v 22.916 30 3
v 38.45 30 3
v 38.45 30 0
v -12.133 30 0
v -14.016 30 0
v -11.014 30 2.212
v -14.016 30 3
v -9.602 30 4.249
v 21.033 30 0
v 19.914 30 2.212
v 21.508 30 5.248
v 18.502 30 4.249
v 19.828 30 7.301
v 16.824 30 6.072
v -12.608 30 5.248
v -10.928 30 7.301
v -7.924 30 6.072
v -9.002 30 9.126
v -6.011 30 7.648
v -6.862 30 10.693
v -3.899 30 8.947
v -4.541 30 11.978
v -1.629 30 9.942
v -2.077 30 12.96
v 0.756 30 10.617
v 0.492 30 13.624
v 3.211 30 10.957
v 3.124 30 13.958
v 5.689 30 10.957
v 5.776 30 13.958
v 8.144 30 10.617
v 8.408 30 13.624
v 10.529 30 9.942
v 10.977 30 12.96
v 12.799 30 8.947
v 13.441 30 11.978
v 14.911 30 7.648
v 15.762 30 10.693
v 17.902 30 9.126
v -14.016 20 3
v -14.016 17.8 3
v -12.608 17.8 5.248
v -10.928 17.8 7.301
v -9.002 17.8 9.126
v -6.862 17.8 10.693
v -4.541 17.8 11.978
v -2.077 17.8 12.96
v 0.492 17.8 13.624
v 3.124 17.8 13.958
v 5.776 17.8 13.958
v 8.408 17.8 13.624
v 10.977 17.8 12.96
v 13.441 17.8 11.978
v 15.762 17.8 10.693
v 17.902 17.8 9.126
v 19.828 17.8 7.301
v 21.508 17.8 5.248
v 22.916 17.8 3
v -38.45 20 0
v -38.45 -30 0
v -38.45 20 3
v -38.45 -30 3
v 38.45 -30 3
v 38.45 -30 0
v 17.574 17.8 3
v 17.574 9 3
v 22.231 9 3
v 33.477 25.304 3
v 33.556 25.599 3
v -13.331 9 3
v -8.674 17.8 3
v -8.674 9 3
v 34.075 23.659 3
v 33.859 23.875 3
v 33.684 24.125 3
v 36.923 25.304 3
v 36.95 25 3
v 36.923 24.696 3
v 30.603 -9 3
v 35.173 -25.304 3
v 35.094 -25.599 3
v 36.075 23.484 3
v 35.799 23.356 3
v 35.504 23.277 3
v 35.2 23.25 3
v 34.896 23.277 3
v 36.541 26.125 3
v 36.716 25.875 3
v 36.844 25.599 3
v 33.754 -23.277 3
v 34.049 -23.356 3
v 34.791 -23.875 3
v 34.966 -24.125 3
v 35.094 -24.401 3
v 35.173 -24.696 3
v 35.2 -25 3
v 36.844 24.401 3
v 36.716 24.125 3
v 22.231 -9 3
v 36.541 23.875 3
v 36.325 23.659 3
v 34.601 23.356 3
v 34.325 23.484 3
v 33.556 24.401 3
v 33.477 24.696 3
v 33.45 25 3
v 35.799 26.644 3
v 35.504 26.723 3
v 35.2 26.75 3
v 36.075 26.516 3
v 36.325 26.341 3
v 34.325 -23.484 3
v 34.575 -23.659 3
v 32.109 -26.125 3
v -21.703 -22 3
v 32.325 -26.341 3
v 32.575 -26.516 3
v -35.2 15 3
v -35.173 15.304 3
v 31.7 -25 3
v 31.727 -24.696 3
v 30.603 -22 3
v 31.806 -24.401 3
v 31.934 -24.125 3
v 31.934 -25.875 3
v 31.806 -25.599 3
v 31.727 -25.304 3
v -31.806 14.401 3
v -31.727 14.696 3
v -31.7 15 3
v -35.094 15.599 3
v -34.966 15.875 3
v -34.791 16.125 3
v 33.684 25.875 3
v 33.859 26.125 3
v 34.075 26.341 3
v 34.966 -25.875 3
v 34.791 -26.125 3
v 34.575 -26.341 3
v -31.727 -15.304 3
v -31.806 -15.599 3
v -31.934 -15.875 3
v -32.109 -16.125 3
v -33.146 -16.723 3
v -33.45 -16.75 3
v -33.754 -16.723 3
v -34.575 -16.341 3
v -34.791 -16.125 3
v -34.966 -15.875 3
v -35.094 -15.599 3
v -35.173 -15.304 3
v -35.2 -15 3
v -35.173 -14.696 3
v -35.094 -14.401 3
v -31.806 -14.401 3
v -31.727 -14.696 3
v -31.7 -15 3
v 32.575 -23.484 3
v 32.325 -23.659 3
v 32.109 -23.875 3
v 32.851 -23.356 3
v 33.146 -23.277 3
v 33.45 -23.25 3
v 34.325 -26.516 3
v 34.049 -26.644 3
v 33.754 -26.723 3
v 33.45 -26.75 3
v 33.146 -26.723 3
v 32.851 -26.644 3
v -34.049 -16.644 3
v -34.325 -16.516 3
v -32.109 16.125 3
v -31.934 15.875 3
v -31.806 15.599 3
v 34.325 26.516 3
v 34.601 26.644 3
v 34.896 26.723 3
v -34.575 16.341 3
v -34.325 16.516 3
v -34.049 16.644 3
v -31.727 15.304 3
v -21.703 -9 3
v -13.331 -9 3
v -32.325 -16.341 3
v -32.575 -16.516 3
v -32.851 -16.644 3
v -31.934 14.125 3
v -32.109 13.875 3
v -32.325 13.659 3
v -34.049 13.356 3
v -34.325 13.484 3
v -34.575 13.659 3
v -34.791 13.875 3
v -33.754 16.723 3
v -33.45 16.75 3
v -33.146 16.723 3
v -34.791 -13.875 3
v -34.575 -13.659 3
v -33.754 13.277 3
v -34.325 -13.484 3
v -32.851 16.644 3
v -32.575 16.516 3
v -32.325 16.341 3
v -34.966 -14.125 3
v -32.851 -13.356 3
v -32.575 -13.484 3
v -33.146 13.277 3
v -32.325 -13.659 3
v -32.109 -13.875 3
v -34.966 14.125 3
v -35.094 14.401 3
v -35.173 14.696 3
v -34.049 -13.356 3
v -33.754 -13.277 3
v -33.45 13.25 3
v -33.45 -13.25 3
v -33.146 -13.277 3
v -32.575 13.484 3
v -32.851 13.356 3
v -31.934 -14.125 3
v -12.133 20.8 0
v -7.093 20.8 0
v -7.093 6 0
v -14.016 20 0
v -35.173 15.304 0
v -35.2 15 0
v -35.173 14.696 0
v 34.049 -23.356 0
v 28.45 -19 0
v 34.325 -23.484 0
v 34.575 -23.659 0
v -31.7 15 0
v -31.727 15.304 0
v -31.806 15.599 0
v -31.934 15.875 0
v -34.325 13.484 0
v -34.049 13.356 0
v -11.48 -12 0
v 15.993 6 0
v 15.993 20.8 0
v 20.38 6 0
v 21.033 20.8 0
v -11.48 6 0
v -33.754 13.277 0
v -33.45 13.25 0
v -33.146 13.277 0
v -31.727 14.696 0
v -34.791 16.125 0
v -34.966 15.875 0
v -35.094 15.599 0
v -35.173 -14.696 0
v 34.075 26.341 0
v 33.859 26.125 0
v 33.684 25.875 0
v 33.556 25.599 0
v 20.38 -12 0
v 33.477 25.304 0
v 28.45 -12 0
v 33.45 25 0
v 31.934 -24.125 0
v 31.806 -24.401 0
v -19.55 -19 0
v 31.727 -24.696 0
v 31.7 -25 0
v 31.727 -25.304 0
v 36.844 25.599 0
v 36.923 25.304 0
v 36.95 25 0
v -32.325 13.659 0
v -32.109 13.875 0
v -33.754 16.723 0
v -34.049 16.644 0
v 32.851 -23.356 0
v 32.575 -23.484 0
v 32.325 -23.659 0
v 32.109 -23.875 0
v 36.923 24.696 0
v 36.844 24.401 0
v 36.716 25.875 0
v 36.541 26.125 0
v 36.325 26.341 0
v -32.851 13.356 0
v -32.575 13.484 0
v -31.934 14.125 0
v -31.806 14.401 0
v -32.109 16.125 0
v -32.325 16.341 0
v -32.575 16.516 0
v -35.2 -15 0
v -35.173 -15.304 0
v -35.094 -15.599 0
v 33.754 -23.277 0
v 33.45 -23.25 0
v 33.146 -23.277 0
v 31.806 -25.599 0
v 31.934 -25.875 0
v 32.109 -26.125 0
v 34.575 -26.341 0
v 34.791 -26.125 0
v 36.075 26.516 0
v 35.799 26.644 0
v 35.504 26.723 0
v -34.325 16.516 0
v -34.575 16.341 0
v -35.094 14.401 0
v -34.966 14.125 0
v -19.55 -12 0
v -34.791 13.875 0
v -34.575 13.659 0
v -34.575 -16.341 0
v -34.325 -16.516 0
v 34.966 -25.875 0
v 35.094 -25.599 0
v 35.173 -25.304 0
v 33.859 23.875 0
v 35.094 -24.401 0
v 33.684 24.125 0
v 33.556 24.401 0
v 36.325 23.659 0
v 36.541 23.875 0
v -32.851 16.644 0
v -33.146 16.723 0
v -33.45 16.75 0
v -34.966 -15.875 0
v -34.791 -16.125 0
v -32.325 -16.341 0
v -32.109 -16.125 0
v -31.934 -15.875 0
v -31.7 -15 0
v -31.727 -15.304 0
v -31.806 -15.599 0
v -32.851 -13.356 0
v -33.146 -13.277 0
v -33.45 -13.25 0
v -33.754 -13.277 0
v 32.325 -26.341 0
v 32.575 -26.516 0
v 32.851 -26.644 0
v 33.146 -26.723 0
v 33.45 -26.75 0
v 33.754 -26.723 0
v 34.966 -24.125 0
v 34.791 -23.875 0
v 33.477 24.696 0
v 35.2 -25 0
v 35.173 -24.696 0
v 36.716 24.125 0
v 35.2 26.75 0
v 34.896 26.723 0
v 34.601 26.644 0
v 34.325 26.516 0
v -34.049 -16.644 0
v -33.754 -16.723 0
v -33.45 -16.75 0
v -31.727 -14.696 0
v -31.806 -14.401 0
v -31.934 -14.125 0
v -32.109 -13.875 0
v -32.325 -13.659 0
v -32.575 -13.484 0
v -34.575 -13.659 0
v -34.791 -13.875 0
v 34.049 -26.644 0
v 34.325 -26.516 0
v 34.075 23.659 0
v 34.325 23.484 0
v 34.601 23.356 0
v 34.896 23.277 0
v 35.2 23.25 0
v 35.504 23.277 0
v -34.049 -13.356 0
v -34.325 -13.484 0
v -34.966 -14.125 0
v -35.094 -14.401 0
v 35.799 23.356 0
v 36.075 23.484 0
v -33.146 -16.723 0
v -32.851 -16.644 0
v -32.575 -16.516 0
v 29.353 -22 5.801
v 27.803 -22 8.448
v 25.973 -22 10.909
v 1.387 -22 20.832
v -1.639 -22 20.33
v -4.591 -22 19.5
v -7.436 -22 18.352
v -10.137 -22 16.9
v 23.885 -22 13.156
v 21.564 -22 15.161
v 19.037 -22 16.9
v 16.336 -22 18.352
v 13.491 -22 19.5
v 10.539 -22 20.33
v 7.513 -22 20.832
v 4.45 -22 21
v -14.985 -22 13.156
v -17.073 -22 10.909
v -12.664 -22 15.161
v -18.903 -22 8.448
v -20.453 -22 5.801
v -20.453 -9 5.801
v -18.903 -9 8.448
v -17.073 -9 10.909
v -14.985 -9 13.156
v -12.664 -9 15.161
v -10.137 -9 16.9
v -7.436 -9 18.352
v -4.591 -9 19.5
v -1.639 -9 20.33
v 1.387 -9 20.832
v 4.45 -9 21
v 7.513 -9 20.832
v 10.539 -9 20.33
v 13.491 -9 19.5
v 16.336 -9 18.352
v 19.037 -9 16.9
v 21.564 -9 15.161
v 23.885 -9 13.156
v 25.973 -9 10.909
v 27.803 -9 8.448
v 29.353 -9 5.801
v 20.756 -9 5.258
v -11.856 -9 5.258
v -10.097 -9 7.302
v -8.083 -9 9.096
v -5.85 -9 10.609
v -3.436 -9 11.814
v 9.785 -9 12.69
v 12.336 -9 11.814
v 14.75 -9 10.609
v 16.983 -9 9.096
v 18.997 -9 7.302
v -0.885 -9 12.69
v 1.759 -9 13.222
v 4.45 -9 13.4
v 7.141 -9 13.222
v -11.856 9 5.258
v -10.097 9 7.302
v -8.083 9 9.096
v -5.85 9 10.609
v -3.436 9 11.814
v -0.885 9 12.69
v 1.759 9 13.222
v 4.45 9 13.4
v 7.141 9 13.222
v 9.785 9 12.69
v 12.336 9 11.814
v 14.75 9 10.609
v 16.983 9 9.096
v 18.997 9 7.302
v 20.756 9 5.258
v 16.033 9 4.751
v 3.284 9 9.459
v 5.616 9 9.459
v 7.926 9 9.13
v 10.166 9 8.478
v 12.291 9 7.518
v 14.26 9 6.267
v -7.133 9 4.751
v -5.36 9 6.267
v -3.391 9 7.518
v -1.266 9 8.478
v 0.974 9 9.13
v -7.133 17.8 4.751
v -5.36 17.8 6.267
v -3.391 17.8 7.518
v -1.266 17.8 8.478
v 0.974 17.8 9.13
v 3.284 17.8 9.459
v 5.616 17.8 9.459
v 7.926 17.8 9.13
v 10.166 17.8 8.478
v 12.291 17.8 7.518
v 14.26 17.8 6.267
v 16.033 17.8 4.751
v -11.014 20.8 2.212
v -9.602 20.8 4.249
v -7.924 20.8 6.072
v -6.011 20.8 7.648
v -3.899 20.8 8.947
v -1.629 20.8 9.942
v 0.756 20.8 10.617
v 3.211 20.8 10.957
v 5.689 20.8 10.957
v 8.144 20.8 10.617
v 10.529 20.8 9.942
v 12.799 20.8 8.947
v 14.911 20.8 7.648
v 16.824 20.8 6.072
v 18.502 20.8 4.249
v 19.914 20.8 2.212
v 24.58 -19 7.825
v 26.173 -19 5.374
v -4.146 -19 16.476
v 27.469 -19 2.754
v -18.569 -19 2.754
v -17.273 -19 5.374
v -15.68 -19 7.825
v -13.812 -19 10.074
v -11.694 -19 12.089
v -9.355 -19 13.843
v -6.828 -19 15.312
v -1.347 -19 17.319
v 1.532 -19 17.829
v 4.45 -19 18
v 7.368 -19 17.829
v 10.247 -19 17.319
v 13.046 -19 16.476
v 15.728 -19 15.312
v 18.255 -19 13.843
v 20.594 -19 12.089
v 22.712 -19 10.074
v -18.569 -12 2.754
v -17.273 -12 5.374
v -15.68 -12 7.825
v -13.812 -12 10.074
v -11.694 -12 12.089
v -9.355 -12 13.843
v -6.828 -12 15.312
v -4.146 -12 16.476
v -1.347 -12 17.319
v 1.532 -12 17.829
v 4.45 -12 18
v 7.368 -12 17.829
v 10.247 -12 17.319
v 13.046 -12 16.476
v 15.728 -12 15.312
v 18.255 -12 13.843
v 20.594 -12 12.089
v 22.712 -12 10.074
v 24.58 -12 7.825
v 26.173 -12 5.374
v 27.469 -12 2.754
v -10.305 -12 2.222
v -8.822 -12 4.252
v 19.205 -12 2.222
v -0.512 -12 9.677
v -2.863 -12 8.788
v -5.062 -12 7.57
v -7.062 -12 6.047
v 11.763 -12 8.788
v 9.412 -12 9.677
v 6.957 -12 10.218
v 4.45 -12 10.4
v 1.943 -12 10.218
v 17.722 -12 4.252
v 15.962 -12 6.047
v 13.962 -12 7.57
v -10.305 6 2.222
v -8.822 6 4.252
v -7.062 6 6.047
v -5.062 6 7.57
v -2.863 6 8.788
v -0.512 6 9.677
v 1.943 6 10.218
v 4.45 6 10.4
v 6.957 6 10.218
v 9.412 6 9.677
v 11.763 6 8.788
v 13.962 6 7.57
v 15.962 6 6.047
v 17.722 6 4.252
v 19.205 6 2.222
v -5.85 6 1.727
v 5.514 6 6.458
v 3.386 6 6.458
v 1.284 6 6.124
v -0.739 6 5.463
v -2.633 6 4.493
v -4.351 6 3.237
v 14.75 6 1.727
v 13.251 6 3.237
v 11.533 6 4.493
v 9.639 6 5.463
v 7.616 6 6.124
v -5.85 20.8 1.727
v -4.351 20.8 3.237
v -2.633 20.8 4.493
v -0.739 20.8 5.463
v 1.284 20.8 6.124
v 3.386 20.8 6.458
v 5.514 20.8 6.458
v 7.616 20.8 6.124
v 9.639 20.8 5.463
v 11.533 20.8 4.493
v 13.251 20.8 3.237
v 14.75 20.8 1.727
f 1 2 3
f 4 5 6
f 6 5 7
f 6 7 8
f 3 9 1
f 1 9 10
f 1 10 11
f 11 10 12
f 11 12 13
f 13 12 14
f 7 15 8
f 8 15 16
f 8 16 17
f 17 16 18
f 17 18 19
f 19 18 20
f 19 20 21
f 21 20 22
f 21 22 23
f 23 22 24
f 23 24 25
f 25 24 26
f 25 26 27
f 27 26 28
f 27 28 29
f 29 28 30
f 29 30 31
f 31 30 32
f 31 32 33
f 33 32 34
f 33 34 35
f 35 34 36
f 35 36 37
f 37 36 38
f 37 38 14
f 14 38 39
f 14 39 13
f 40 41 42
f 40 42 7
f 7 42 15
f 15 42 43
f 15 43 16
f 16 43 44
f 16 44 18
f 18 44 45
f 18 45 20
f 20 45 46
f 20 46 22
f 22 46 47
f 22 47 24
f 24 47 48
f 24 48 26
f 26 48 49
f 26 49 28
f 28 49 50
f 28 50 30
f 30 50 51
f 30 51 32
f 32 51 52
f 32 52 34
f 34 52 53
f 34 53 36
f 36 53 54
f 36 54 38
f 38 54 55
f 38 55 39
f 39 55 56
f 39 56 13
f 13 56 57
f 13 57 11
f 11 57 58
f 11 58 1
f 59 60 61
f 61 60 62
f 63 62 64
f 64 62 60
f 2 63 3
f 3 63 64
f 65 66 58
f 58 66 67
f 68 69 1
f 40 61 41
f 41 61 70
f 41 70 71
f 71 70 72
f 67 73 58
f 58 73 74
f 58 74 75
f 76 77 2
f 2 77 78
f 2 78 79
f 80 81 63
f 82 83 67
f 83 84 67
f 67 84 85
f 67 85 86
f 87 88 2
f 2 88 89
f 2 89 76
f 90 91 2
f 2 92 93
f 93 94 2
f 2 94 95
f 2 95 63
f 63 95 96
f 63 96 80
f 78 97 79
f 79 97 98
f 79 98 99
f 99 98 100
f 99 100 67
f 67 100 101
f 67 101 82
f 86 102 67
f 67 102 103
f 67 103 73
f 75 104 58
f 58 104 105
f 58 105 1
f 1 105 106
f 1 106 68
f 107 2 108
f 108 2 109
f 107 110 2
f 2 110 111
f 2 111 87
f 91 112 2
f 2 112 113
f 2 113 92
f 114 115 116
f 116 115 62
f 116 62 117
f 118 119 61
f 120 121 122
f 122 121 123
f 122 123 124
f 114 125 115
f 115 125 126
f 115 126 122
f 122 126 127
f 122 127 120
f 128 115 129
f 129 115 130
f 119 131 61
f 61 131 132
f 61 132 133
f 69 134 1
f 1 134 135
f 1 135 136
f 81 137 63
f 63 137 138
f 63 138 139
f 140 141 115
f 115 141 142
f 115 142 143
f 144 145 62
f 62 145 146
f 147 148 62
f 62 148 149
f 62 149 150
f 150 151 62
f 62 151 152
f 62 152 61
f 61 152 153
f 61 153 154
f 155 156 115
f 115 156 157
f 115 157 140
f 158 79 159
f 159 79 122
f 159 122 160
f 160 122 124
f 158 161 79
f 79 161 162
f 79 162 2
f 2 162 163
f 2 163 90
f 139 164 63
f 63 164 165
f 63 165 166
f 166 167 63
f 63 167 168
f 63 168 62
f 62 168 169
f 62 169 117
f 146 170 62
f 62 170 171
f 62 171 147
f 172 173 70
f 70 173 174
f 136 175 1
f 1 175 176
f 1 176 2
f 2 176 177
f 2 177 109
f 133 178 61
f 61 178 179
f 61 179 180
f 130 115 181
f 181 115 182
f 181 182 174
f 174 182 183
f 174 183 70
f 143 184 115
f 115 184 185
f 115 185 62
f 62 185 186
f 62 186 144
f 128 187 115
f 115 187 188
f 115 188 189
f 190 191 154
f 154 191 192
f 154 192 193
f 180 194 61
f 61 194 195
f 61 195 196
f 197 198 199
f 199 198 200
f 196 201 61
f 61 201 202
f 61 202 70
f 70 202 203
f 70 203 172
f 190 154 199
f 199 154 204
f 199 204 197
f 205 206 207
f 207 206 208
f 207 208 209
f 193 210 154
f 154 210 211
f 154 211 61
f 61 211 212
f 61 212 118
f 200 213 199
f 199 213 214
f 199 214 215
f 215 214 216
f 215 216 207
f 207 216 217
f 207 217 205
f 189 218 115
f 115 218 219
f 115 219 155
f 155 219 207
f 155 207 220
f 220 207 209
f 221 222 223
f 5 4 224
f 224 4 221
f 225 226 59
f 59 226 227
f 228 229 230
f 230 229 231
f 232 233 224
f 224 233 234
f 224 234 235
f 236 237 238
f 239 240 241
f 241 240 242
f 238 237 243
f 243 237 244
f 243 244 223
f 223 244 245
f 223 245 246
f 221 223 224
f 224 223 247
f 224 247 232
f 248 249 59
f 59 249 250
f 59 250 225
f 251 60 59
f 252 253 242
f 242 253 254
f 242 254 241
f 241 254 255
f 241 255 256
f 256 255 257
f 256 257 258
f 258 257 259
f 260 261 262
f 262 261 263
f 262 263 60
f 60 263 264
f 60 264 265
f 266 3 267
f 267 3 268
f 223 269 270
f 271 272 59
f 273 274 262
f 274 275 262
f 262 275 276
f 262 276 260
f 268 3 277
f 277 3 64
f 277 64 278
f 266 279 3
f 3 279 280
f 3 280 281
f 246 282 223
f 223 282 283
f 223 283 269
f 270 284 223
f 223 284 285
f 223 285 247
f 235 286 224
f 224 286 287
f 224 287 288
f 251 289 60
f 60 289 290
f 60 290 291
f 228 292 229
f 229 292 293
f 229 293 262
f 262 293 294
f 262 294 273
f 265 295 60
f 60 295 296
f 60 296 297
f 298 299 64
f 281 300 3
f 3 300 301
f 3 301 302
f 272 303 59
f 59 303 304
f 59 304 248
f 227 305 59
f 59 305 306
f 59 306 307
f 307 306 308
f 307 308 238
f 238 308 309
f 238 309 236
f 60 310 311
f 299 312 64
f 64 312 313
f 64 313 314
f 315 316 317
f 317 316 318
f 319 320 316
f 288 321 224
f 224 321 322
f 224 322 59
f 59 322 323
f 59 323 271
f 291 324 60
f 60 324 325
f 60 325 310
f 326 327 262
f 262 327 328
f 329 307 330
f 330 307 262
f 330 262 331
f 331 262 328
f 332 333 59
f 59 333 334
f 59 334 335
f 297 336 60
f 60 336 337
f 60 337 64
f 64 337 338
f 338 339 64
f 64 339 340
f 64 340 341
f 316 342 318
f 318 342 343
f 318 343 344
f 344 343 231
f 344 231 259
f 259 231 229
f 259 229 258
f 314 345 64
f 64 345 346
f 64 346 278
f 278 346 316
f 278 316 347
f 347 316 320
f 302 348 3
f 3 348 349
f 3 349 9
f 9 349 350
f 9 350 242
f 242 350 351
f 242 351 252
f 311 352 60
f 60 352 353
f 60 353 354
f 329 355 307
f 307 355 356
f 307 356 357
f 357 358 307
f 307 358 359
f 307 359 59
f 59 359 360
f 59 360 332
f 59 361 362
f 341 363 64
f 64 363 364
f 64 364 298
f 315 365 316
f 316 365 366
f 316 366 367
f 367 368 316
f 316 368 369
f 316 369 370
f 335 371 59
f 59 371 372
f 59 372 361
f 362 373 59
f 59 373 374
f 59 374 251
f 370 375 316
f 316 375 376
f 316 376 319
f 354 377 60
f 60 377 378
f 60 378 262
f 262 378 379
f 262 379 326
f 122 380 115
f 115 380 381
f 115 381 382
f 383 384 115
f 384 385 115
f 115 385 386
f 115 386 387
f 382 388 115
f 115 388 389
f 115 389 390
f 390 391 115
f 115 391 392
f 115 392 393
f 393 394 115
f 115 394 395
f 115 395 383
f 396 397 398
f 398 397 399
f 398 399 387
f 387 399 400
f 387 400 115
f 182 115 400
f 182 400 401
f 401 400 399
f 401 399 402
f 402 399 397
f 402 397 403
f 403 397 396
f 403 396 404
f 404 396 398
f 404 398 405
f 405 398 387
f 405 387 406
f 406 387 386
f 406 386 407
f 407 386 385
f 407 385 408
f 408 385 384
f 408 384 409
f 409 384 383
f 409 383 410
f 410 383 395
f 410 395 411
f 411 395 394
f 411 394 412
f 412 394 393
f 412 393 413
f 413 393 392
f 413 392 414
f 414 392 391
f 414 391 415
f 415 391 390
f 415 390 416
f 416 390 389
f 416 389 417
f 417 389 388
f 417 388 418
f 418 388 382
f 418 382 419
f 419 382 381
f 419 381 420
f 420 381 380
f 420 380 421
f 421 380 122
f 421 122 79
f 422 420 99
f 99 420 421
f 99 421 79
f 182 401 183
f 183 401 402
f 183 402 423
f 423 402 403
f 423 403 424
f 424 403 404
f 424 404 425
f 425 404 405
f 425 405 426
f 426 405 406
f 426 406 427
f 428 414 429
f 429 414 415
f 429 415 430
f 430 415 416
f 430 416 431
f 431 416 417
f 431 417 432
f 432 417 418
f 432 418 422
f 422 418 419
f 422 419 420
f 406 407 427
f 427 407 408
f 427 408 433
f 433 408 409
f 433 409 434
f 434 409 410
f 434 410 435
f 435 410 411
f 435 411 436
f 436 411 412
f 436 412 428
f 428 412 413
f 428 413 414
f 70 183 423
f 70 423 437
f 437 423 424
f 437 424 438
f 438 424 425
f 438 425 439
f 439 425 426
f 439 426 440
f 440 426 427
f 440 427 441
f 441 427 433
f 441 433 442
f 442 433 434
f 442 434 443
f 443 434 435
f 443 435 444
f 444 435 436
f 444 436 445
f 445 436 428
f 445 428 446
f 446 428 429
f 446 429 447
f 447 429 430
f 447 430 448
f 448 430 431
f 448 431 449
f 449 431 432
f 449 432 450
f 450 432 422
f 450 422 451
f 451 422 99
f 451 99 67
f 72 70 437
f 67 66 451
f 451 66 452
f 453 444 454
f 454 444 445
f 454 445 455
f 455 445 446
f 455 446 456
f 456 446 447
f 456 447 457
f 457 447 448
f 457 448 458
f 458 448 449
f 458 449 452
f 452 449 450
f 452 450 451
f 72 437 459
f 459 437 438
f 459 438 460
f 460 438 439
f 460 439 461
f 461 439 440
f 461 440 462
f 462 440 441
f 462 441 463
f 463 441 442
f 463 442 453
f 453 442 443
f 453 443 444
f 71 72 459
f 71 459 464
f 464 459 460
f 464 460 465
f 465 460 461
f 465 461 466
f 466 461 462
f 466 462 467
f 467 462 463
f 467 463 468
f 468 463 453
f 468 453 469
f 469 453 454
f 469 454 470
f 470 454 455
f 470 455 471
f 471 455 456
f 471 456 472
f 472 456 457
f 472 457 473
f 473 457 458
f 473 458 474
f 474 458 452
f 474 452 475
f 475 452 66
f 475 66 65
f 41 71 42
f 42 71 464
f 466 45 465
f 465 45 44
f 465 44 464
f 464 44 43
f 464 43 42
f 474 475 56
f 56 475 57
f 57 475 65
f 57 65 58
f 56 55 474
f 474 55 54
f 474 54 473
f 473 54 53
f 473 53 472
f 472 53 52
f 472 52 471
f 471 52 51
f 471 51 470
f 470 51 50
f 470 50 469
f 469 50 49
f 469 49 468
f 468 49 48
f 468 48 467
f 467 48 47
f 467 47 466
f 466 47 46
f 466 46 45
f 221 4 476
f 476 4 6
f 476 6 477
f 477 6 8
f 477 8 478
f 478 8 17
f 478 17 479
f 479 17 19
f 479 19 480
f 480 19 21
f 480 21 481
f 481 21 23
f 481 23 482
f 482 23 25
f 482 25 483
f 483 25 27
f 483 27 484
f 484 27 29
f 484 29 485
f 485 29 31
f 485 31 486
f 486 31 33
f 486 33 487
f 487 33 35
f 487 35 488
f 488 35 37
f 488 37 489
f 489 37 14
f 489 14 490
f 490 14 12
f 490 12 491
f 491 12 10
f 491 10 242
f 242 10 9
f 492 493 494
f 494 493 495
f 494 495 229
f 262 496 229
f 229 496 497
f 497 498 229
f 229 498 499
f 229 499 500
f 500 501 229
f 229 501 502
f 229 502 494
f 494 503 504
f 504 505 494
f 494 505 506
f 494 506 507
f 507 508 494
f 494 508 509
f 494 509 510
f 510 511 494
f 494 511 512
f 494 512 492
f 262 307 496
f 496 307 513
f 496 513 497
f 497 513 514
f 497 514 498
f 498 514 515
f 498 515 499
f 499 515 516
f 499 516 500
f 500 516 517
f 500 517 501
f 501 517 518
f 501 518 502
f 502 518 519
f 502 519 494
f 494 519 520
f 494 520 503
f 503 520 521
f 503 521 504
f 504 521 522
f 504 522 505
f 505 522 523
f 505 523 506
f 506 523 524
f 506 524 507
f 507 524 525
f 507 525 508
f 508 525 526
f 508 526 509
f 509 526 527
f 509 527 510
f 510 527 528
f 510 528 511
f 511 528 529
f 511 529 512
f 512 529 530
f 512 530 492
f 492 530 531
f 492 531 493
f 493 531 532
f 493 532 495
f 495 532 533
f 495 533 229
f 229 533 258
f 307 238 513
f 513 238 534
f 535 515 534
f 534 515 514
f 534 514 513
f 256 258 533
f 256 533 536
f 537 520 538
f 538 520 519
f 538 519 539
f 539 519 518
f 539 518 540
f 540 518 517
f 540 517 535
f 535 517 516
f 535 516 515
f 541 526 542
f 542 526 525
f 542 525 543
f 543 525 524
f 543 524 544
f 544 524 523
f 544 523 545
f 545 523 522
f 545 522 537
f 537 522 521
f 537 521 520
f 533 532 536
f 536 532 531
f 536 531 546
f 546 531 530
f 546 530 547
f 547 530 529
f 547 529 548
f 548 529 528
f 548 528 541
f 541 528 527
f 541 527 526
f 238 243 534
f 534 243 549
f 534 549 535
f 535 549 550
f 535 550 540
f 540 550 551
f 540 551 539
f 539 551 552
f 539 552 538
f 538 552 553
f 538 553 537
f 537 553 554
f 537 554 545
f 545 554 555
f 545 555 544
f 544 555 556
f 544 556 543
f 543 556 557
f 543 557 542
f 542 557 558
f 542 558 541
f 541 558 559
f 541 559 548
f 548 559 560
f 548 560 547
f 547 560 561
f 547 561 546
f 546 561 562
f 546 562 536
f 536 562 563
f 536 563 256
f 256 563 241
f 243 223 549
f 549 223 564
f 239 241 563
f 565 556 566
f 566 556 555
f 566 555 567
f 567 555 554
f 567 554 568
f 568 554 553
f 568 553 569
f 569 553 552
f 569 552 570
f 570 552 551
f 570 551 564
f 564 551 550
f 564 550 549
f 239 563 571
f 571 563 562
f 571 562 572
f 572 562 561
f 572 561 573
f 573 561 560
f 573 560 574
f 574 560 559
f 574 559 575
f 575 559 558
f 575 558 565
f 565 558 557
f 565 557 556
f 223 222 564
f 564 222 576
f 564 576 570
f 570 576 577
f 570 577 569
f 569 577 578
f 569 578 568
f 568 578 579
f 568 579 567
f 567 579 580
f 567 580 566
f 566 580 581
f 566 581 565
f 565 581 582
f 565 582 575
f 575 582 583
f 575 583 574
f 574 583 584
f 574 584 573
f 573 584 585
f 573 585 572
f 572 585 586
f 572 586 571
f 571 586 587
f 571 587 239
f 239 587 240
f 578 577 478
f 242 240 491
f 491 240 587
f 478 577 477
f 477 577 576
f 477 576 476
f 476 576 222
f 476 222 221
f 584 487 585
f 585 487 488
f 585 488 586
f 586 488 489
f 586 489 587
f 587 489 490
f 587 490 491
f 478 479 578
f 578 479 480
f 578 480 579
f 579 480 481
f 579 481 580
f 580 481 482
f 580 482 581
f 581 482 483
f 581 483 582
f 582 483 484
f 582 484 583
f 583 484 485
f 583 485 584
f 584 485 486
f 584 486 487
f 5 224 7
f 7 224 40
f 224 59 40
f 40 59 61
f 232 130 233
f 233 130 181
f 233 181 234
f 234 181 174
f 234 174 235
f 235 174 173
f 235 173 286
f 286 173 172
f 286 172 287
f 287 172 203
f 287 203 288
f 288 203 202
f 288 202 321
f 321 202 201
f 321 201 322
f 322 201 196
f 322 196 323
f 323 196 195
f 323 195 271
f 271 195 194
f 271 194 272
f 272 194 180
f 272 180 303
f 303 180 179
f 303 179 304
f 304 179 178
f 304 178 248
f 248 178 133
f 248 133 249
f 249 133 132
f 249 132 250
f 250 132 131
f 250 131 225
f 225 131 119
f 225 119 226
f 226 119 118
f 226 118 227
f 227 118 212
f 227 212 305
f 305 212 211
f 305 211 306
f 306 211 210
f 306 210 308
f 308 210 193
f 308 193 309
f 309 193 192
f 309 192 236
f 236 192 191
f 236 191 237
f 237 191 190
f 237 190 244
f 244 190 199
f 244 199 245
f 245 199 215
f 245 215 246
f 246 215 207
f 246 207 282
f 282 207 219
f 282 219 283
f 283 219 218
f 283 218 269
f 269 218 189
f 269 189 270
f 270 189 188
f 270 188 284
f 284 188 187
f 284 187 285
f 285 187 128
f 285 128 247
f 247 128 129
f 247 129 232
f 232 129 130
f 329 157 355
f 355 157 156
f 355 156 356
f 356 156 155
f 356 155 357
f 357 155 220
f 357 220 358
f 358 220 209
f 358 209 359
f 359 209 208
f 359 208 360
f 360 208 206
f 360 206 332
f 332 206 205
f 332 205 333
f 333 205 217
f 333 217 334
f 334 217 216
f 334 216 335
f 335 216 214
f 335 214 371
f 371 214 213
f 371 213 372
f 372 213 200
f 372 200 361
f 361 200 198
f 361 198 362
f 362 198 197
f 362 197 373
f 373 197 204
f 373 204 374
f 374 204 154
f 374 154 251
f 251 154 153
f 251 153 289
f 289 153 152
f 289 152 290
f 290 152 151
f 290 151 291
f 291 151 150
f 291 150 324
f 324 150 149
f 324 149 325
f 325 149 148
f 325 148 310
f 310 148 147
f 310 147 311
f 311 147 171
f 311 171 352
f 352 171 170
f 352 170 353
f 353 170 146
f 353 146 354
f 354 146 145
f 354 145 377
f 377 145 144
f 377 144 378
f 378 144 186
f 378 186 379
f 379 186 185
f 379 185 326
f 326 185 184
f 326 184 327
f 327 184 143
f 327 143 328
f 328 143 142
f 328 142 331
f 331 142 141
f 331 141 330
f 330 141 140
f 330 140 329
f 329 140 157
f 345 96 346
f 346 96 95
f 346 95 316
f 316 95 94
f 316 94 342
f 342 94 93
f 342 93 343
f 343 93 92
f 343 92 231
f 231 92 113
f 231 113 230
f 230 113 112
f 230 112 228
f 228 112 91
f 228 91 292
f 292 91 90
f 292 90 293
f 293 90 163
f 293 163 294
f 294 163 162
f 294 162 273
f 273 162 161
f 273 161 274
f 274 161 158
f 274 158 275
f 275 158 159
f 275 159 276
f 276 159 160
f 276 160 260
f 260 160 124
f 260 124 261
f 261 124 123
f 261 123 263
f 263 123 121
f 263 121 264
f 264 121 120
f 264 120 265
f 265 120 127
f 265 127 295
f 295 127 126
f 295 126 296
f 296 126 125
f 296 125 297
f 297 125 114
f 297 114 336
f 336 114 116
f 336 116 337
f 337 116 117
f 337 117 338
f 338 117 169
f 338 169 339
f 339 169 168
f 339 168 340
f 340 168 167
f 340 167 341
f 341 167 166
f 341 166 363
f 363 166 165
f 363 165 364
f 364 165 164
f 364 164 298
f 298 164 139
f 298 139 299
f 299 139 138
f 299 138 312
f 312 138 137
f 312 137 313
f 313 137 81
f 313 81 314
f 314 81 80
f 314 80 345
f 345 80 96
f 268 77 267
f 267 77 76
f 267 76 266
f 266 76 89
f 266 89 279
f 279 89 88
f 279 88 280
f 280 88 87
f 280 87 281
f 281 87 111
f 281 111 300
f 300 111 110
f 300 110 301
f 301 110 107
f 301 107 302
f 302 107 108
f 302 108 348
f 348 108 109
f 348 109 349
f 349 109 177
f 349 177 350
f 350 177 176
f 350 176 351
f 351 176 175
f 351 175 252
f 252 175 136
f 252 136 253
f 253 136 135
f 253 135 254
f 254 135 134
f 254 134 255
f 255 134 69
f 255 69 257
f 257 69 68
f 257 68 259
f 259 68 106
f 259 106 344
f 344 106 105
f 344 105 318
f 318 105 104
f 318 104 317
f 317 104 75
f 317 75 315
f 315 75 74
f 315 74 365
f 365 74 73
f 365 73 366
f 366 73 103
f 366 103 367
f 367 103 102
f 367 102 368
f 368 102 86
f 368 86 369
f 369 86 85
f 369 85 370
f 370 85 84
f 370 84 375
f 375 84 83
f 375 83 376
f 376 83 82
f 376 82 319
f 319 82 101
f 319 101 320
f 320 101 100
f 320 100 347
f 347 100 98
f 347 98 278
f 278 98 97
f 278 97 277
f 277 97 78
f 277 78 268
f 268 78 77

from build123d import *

# Parameters (mm, degrees)
SCHIZZO1_W                   = 76.9
SCHIZZO1_H                   = 60
ESTRUSIONE_ESTRUSIONE1_DEPTH = 3
RIVOLUZIONE2_ANGLE           = 180
SCHIZZO3_W                   = 82.857519441
SCHIZZO3_H                   = 19.07586099
TAGLIO_ESTRUSIONE1_DEPTH     = 87.921415247
SCHIZZO8_W                   = 15.498915434
SCHIZZO8_H                   = 3
SCHIZZO5_W                   = 31.459803045
SCHIZZO5_H                   = 71.75772661
TAGLIO_ESTRUSIONE2_DEPTH     = 86.17399838
SCHIZZO6_W                   = 24.433814687
SCHIZZO6_H                   = 10
TAGLIO_ESTRUSIONE3_DEPTH     = 52.984637154
SCHIZZO7_R                   = 1.75
TAGLIO_ESTRUSIONE4_DEPTH     = 52.984637154


with BuildPart() as part:
    # Schizzo1 → Estrusione-Estrusione1 (new body)
    with BuildSketch(Plane.XY):
        Rectangle(SCHIZZO1_W, SCHIZZO1_H)
    extrude(amount=ESTRUSIONE_ESTRUSIONE1_DEPTH)

    # Schizzo2 → Rivoluzione2 (revolve)
    with BuildSketch(Plane(origin=(0, 0, -7), x_dir=(-1, 0, 0), z_dir=(0, 0, -1))):
        Polygon((-1.948915434, 34.651441941), (-1.948915434, -22), (23.55, -22), (23.55, -9), (15.95, -9), (15.95, 9), (12.05, 9), (12.05, 17.8), (16.55, 17.8), (16.55, 34.651441941), align=None)
    revolve(axis=Axis((4.45, 39.663918646, -7), (0, 1, 0)), revolution_arc=RIVOLUZIONE2_ANGLE)

    # Schizzo3 → Taglio-Estrusione1 (cut, through all)
    with BuildSketch(Plane(origin=(38.45, 0, 0), x_dir=(0, 0, -1), z_dir=(1, 0, 0))):
        with Locations((-0.84285559, 39.537930495)):
            Rectangle(SCHIZZO3_W, SCHIZZO3_H)
    extrude(amount=-TAGLIO_ESTRUSIONE1_DEPTH, mode=Mode.SUBTRACT)

    # Schizzo8 → Taglia-Rivoluzione1 (revolve, cut)
    with BuildSketch(Plane(origin=(0, 0, -7), x_dir=(-1, 0, 0), z_dir=(0, 0, -1))):
        Polygon((13.55, 20.8), (13.55, 27), (-1.948915434, 27), (-1.948915434, -19), (20.55, -19), (20.55, -12), (12.95, -12), (12.95, 6), (9.05, 6), (9.05, 20.8), align=None)
        with Locations((5.800542283, 28.5)):
            Rectangle(SCHIZZO8_W, SCHIZZO8_H)
    revolve(axis=Axis((4.45, 30, -7), (0, -1, 0)), mode=Mode.SUBTRACT)

    # Schizzo5 → Taglio-Estrusione2 (cut, through all)
    with BuildSketch(Plane(origin=(38.45, 0, 0), x_dir=(0, 0, -1), z_dir=(1, 0, 0))):
        with Locations((15.729901523, 13.341257692)):
            Rectangle(SCHIZZO5_W, SCHIZZO5_H)
    extrude(amount=-TAGLIO_ESTRUSIONE2_DEPTH, mode=Mode.SUBTRACT)

    # Schizzo6 → Taglio-Estrusione3 (cut, through all)
    with BuildSketch(Plane.XY.offset(3)):
        with Locations((-26.233092657, 25)):
            Rectangle(SCHIZZO6_W, SCHIZZO6_H)
    extrude(amount=-TAGLIO_ESTRUSIONE3_DEPTH, mode=Mode.SUBTRACT)

    # Schizzo7 → Taglio-Estrusione4 (cut, through all)
    with BuildSketch(Plane.XY.offset(3)):
        with Locations((-33.45, 15)):
            Circle(SCHIZZO7_R)
        with Locations((-33.45, -15)):
            Circle(SCHIZZO7_R)
        with Locations((33.45, -25)):
            Circle(SCHIZZO7_R)
        with Locations((35.2, 25)):
            Circle(SCHIZZO7_R)
    extrude(amount=-TAGLIO_ESTRUSIONE4_DEPTH, mode=Mode.SUBTRACT)


solid = part.part
